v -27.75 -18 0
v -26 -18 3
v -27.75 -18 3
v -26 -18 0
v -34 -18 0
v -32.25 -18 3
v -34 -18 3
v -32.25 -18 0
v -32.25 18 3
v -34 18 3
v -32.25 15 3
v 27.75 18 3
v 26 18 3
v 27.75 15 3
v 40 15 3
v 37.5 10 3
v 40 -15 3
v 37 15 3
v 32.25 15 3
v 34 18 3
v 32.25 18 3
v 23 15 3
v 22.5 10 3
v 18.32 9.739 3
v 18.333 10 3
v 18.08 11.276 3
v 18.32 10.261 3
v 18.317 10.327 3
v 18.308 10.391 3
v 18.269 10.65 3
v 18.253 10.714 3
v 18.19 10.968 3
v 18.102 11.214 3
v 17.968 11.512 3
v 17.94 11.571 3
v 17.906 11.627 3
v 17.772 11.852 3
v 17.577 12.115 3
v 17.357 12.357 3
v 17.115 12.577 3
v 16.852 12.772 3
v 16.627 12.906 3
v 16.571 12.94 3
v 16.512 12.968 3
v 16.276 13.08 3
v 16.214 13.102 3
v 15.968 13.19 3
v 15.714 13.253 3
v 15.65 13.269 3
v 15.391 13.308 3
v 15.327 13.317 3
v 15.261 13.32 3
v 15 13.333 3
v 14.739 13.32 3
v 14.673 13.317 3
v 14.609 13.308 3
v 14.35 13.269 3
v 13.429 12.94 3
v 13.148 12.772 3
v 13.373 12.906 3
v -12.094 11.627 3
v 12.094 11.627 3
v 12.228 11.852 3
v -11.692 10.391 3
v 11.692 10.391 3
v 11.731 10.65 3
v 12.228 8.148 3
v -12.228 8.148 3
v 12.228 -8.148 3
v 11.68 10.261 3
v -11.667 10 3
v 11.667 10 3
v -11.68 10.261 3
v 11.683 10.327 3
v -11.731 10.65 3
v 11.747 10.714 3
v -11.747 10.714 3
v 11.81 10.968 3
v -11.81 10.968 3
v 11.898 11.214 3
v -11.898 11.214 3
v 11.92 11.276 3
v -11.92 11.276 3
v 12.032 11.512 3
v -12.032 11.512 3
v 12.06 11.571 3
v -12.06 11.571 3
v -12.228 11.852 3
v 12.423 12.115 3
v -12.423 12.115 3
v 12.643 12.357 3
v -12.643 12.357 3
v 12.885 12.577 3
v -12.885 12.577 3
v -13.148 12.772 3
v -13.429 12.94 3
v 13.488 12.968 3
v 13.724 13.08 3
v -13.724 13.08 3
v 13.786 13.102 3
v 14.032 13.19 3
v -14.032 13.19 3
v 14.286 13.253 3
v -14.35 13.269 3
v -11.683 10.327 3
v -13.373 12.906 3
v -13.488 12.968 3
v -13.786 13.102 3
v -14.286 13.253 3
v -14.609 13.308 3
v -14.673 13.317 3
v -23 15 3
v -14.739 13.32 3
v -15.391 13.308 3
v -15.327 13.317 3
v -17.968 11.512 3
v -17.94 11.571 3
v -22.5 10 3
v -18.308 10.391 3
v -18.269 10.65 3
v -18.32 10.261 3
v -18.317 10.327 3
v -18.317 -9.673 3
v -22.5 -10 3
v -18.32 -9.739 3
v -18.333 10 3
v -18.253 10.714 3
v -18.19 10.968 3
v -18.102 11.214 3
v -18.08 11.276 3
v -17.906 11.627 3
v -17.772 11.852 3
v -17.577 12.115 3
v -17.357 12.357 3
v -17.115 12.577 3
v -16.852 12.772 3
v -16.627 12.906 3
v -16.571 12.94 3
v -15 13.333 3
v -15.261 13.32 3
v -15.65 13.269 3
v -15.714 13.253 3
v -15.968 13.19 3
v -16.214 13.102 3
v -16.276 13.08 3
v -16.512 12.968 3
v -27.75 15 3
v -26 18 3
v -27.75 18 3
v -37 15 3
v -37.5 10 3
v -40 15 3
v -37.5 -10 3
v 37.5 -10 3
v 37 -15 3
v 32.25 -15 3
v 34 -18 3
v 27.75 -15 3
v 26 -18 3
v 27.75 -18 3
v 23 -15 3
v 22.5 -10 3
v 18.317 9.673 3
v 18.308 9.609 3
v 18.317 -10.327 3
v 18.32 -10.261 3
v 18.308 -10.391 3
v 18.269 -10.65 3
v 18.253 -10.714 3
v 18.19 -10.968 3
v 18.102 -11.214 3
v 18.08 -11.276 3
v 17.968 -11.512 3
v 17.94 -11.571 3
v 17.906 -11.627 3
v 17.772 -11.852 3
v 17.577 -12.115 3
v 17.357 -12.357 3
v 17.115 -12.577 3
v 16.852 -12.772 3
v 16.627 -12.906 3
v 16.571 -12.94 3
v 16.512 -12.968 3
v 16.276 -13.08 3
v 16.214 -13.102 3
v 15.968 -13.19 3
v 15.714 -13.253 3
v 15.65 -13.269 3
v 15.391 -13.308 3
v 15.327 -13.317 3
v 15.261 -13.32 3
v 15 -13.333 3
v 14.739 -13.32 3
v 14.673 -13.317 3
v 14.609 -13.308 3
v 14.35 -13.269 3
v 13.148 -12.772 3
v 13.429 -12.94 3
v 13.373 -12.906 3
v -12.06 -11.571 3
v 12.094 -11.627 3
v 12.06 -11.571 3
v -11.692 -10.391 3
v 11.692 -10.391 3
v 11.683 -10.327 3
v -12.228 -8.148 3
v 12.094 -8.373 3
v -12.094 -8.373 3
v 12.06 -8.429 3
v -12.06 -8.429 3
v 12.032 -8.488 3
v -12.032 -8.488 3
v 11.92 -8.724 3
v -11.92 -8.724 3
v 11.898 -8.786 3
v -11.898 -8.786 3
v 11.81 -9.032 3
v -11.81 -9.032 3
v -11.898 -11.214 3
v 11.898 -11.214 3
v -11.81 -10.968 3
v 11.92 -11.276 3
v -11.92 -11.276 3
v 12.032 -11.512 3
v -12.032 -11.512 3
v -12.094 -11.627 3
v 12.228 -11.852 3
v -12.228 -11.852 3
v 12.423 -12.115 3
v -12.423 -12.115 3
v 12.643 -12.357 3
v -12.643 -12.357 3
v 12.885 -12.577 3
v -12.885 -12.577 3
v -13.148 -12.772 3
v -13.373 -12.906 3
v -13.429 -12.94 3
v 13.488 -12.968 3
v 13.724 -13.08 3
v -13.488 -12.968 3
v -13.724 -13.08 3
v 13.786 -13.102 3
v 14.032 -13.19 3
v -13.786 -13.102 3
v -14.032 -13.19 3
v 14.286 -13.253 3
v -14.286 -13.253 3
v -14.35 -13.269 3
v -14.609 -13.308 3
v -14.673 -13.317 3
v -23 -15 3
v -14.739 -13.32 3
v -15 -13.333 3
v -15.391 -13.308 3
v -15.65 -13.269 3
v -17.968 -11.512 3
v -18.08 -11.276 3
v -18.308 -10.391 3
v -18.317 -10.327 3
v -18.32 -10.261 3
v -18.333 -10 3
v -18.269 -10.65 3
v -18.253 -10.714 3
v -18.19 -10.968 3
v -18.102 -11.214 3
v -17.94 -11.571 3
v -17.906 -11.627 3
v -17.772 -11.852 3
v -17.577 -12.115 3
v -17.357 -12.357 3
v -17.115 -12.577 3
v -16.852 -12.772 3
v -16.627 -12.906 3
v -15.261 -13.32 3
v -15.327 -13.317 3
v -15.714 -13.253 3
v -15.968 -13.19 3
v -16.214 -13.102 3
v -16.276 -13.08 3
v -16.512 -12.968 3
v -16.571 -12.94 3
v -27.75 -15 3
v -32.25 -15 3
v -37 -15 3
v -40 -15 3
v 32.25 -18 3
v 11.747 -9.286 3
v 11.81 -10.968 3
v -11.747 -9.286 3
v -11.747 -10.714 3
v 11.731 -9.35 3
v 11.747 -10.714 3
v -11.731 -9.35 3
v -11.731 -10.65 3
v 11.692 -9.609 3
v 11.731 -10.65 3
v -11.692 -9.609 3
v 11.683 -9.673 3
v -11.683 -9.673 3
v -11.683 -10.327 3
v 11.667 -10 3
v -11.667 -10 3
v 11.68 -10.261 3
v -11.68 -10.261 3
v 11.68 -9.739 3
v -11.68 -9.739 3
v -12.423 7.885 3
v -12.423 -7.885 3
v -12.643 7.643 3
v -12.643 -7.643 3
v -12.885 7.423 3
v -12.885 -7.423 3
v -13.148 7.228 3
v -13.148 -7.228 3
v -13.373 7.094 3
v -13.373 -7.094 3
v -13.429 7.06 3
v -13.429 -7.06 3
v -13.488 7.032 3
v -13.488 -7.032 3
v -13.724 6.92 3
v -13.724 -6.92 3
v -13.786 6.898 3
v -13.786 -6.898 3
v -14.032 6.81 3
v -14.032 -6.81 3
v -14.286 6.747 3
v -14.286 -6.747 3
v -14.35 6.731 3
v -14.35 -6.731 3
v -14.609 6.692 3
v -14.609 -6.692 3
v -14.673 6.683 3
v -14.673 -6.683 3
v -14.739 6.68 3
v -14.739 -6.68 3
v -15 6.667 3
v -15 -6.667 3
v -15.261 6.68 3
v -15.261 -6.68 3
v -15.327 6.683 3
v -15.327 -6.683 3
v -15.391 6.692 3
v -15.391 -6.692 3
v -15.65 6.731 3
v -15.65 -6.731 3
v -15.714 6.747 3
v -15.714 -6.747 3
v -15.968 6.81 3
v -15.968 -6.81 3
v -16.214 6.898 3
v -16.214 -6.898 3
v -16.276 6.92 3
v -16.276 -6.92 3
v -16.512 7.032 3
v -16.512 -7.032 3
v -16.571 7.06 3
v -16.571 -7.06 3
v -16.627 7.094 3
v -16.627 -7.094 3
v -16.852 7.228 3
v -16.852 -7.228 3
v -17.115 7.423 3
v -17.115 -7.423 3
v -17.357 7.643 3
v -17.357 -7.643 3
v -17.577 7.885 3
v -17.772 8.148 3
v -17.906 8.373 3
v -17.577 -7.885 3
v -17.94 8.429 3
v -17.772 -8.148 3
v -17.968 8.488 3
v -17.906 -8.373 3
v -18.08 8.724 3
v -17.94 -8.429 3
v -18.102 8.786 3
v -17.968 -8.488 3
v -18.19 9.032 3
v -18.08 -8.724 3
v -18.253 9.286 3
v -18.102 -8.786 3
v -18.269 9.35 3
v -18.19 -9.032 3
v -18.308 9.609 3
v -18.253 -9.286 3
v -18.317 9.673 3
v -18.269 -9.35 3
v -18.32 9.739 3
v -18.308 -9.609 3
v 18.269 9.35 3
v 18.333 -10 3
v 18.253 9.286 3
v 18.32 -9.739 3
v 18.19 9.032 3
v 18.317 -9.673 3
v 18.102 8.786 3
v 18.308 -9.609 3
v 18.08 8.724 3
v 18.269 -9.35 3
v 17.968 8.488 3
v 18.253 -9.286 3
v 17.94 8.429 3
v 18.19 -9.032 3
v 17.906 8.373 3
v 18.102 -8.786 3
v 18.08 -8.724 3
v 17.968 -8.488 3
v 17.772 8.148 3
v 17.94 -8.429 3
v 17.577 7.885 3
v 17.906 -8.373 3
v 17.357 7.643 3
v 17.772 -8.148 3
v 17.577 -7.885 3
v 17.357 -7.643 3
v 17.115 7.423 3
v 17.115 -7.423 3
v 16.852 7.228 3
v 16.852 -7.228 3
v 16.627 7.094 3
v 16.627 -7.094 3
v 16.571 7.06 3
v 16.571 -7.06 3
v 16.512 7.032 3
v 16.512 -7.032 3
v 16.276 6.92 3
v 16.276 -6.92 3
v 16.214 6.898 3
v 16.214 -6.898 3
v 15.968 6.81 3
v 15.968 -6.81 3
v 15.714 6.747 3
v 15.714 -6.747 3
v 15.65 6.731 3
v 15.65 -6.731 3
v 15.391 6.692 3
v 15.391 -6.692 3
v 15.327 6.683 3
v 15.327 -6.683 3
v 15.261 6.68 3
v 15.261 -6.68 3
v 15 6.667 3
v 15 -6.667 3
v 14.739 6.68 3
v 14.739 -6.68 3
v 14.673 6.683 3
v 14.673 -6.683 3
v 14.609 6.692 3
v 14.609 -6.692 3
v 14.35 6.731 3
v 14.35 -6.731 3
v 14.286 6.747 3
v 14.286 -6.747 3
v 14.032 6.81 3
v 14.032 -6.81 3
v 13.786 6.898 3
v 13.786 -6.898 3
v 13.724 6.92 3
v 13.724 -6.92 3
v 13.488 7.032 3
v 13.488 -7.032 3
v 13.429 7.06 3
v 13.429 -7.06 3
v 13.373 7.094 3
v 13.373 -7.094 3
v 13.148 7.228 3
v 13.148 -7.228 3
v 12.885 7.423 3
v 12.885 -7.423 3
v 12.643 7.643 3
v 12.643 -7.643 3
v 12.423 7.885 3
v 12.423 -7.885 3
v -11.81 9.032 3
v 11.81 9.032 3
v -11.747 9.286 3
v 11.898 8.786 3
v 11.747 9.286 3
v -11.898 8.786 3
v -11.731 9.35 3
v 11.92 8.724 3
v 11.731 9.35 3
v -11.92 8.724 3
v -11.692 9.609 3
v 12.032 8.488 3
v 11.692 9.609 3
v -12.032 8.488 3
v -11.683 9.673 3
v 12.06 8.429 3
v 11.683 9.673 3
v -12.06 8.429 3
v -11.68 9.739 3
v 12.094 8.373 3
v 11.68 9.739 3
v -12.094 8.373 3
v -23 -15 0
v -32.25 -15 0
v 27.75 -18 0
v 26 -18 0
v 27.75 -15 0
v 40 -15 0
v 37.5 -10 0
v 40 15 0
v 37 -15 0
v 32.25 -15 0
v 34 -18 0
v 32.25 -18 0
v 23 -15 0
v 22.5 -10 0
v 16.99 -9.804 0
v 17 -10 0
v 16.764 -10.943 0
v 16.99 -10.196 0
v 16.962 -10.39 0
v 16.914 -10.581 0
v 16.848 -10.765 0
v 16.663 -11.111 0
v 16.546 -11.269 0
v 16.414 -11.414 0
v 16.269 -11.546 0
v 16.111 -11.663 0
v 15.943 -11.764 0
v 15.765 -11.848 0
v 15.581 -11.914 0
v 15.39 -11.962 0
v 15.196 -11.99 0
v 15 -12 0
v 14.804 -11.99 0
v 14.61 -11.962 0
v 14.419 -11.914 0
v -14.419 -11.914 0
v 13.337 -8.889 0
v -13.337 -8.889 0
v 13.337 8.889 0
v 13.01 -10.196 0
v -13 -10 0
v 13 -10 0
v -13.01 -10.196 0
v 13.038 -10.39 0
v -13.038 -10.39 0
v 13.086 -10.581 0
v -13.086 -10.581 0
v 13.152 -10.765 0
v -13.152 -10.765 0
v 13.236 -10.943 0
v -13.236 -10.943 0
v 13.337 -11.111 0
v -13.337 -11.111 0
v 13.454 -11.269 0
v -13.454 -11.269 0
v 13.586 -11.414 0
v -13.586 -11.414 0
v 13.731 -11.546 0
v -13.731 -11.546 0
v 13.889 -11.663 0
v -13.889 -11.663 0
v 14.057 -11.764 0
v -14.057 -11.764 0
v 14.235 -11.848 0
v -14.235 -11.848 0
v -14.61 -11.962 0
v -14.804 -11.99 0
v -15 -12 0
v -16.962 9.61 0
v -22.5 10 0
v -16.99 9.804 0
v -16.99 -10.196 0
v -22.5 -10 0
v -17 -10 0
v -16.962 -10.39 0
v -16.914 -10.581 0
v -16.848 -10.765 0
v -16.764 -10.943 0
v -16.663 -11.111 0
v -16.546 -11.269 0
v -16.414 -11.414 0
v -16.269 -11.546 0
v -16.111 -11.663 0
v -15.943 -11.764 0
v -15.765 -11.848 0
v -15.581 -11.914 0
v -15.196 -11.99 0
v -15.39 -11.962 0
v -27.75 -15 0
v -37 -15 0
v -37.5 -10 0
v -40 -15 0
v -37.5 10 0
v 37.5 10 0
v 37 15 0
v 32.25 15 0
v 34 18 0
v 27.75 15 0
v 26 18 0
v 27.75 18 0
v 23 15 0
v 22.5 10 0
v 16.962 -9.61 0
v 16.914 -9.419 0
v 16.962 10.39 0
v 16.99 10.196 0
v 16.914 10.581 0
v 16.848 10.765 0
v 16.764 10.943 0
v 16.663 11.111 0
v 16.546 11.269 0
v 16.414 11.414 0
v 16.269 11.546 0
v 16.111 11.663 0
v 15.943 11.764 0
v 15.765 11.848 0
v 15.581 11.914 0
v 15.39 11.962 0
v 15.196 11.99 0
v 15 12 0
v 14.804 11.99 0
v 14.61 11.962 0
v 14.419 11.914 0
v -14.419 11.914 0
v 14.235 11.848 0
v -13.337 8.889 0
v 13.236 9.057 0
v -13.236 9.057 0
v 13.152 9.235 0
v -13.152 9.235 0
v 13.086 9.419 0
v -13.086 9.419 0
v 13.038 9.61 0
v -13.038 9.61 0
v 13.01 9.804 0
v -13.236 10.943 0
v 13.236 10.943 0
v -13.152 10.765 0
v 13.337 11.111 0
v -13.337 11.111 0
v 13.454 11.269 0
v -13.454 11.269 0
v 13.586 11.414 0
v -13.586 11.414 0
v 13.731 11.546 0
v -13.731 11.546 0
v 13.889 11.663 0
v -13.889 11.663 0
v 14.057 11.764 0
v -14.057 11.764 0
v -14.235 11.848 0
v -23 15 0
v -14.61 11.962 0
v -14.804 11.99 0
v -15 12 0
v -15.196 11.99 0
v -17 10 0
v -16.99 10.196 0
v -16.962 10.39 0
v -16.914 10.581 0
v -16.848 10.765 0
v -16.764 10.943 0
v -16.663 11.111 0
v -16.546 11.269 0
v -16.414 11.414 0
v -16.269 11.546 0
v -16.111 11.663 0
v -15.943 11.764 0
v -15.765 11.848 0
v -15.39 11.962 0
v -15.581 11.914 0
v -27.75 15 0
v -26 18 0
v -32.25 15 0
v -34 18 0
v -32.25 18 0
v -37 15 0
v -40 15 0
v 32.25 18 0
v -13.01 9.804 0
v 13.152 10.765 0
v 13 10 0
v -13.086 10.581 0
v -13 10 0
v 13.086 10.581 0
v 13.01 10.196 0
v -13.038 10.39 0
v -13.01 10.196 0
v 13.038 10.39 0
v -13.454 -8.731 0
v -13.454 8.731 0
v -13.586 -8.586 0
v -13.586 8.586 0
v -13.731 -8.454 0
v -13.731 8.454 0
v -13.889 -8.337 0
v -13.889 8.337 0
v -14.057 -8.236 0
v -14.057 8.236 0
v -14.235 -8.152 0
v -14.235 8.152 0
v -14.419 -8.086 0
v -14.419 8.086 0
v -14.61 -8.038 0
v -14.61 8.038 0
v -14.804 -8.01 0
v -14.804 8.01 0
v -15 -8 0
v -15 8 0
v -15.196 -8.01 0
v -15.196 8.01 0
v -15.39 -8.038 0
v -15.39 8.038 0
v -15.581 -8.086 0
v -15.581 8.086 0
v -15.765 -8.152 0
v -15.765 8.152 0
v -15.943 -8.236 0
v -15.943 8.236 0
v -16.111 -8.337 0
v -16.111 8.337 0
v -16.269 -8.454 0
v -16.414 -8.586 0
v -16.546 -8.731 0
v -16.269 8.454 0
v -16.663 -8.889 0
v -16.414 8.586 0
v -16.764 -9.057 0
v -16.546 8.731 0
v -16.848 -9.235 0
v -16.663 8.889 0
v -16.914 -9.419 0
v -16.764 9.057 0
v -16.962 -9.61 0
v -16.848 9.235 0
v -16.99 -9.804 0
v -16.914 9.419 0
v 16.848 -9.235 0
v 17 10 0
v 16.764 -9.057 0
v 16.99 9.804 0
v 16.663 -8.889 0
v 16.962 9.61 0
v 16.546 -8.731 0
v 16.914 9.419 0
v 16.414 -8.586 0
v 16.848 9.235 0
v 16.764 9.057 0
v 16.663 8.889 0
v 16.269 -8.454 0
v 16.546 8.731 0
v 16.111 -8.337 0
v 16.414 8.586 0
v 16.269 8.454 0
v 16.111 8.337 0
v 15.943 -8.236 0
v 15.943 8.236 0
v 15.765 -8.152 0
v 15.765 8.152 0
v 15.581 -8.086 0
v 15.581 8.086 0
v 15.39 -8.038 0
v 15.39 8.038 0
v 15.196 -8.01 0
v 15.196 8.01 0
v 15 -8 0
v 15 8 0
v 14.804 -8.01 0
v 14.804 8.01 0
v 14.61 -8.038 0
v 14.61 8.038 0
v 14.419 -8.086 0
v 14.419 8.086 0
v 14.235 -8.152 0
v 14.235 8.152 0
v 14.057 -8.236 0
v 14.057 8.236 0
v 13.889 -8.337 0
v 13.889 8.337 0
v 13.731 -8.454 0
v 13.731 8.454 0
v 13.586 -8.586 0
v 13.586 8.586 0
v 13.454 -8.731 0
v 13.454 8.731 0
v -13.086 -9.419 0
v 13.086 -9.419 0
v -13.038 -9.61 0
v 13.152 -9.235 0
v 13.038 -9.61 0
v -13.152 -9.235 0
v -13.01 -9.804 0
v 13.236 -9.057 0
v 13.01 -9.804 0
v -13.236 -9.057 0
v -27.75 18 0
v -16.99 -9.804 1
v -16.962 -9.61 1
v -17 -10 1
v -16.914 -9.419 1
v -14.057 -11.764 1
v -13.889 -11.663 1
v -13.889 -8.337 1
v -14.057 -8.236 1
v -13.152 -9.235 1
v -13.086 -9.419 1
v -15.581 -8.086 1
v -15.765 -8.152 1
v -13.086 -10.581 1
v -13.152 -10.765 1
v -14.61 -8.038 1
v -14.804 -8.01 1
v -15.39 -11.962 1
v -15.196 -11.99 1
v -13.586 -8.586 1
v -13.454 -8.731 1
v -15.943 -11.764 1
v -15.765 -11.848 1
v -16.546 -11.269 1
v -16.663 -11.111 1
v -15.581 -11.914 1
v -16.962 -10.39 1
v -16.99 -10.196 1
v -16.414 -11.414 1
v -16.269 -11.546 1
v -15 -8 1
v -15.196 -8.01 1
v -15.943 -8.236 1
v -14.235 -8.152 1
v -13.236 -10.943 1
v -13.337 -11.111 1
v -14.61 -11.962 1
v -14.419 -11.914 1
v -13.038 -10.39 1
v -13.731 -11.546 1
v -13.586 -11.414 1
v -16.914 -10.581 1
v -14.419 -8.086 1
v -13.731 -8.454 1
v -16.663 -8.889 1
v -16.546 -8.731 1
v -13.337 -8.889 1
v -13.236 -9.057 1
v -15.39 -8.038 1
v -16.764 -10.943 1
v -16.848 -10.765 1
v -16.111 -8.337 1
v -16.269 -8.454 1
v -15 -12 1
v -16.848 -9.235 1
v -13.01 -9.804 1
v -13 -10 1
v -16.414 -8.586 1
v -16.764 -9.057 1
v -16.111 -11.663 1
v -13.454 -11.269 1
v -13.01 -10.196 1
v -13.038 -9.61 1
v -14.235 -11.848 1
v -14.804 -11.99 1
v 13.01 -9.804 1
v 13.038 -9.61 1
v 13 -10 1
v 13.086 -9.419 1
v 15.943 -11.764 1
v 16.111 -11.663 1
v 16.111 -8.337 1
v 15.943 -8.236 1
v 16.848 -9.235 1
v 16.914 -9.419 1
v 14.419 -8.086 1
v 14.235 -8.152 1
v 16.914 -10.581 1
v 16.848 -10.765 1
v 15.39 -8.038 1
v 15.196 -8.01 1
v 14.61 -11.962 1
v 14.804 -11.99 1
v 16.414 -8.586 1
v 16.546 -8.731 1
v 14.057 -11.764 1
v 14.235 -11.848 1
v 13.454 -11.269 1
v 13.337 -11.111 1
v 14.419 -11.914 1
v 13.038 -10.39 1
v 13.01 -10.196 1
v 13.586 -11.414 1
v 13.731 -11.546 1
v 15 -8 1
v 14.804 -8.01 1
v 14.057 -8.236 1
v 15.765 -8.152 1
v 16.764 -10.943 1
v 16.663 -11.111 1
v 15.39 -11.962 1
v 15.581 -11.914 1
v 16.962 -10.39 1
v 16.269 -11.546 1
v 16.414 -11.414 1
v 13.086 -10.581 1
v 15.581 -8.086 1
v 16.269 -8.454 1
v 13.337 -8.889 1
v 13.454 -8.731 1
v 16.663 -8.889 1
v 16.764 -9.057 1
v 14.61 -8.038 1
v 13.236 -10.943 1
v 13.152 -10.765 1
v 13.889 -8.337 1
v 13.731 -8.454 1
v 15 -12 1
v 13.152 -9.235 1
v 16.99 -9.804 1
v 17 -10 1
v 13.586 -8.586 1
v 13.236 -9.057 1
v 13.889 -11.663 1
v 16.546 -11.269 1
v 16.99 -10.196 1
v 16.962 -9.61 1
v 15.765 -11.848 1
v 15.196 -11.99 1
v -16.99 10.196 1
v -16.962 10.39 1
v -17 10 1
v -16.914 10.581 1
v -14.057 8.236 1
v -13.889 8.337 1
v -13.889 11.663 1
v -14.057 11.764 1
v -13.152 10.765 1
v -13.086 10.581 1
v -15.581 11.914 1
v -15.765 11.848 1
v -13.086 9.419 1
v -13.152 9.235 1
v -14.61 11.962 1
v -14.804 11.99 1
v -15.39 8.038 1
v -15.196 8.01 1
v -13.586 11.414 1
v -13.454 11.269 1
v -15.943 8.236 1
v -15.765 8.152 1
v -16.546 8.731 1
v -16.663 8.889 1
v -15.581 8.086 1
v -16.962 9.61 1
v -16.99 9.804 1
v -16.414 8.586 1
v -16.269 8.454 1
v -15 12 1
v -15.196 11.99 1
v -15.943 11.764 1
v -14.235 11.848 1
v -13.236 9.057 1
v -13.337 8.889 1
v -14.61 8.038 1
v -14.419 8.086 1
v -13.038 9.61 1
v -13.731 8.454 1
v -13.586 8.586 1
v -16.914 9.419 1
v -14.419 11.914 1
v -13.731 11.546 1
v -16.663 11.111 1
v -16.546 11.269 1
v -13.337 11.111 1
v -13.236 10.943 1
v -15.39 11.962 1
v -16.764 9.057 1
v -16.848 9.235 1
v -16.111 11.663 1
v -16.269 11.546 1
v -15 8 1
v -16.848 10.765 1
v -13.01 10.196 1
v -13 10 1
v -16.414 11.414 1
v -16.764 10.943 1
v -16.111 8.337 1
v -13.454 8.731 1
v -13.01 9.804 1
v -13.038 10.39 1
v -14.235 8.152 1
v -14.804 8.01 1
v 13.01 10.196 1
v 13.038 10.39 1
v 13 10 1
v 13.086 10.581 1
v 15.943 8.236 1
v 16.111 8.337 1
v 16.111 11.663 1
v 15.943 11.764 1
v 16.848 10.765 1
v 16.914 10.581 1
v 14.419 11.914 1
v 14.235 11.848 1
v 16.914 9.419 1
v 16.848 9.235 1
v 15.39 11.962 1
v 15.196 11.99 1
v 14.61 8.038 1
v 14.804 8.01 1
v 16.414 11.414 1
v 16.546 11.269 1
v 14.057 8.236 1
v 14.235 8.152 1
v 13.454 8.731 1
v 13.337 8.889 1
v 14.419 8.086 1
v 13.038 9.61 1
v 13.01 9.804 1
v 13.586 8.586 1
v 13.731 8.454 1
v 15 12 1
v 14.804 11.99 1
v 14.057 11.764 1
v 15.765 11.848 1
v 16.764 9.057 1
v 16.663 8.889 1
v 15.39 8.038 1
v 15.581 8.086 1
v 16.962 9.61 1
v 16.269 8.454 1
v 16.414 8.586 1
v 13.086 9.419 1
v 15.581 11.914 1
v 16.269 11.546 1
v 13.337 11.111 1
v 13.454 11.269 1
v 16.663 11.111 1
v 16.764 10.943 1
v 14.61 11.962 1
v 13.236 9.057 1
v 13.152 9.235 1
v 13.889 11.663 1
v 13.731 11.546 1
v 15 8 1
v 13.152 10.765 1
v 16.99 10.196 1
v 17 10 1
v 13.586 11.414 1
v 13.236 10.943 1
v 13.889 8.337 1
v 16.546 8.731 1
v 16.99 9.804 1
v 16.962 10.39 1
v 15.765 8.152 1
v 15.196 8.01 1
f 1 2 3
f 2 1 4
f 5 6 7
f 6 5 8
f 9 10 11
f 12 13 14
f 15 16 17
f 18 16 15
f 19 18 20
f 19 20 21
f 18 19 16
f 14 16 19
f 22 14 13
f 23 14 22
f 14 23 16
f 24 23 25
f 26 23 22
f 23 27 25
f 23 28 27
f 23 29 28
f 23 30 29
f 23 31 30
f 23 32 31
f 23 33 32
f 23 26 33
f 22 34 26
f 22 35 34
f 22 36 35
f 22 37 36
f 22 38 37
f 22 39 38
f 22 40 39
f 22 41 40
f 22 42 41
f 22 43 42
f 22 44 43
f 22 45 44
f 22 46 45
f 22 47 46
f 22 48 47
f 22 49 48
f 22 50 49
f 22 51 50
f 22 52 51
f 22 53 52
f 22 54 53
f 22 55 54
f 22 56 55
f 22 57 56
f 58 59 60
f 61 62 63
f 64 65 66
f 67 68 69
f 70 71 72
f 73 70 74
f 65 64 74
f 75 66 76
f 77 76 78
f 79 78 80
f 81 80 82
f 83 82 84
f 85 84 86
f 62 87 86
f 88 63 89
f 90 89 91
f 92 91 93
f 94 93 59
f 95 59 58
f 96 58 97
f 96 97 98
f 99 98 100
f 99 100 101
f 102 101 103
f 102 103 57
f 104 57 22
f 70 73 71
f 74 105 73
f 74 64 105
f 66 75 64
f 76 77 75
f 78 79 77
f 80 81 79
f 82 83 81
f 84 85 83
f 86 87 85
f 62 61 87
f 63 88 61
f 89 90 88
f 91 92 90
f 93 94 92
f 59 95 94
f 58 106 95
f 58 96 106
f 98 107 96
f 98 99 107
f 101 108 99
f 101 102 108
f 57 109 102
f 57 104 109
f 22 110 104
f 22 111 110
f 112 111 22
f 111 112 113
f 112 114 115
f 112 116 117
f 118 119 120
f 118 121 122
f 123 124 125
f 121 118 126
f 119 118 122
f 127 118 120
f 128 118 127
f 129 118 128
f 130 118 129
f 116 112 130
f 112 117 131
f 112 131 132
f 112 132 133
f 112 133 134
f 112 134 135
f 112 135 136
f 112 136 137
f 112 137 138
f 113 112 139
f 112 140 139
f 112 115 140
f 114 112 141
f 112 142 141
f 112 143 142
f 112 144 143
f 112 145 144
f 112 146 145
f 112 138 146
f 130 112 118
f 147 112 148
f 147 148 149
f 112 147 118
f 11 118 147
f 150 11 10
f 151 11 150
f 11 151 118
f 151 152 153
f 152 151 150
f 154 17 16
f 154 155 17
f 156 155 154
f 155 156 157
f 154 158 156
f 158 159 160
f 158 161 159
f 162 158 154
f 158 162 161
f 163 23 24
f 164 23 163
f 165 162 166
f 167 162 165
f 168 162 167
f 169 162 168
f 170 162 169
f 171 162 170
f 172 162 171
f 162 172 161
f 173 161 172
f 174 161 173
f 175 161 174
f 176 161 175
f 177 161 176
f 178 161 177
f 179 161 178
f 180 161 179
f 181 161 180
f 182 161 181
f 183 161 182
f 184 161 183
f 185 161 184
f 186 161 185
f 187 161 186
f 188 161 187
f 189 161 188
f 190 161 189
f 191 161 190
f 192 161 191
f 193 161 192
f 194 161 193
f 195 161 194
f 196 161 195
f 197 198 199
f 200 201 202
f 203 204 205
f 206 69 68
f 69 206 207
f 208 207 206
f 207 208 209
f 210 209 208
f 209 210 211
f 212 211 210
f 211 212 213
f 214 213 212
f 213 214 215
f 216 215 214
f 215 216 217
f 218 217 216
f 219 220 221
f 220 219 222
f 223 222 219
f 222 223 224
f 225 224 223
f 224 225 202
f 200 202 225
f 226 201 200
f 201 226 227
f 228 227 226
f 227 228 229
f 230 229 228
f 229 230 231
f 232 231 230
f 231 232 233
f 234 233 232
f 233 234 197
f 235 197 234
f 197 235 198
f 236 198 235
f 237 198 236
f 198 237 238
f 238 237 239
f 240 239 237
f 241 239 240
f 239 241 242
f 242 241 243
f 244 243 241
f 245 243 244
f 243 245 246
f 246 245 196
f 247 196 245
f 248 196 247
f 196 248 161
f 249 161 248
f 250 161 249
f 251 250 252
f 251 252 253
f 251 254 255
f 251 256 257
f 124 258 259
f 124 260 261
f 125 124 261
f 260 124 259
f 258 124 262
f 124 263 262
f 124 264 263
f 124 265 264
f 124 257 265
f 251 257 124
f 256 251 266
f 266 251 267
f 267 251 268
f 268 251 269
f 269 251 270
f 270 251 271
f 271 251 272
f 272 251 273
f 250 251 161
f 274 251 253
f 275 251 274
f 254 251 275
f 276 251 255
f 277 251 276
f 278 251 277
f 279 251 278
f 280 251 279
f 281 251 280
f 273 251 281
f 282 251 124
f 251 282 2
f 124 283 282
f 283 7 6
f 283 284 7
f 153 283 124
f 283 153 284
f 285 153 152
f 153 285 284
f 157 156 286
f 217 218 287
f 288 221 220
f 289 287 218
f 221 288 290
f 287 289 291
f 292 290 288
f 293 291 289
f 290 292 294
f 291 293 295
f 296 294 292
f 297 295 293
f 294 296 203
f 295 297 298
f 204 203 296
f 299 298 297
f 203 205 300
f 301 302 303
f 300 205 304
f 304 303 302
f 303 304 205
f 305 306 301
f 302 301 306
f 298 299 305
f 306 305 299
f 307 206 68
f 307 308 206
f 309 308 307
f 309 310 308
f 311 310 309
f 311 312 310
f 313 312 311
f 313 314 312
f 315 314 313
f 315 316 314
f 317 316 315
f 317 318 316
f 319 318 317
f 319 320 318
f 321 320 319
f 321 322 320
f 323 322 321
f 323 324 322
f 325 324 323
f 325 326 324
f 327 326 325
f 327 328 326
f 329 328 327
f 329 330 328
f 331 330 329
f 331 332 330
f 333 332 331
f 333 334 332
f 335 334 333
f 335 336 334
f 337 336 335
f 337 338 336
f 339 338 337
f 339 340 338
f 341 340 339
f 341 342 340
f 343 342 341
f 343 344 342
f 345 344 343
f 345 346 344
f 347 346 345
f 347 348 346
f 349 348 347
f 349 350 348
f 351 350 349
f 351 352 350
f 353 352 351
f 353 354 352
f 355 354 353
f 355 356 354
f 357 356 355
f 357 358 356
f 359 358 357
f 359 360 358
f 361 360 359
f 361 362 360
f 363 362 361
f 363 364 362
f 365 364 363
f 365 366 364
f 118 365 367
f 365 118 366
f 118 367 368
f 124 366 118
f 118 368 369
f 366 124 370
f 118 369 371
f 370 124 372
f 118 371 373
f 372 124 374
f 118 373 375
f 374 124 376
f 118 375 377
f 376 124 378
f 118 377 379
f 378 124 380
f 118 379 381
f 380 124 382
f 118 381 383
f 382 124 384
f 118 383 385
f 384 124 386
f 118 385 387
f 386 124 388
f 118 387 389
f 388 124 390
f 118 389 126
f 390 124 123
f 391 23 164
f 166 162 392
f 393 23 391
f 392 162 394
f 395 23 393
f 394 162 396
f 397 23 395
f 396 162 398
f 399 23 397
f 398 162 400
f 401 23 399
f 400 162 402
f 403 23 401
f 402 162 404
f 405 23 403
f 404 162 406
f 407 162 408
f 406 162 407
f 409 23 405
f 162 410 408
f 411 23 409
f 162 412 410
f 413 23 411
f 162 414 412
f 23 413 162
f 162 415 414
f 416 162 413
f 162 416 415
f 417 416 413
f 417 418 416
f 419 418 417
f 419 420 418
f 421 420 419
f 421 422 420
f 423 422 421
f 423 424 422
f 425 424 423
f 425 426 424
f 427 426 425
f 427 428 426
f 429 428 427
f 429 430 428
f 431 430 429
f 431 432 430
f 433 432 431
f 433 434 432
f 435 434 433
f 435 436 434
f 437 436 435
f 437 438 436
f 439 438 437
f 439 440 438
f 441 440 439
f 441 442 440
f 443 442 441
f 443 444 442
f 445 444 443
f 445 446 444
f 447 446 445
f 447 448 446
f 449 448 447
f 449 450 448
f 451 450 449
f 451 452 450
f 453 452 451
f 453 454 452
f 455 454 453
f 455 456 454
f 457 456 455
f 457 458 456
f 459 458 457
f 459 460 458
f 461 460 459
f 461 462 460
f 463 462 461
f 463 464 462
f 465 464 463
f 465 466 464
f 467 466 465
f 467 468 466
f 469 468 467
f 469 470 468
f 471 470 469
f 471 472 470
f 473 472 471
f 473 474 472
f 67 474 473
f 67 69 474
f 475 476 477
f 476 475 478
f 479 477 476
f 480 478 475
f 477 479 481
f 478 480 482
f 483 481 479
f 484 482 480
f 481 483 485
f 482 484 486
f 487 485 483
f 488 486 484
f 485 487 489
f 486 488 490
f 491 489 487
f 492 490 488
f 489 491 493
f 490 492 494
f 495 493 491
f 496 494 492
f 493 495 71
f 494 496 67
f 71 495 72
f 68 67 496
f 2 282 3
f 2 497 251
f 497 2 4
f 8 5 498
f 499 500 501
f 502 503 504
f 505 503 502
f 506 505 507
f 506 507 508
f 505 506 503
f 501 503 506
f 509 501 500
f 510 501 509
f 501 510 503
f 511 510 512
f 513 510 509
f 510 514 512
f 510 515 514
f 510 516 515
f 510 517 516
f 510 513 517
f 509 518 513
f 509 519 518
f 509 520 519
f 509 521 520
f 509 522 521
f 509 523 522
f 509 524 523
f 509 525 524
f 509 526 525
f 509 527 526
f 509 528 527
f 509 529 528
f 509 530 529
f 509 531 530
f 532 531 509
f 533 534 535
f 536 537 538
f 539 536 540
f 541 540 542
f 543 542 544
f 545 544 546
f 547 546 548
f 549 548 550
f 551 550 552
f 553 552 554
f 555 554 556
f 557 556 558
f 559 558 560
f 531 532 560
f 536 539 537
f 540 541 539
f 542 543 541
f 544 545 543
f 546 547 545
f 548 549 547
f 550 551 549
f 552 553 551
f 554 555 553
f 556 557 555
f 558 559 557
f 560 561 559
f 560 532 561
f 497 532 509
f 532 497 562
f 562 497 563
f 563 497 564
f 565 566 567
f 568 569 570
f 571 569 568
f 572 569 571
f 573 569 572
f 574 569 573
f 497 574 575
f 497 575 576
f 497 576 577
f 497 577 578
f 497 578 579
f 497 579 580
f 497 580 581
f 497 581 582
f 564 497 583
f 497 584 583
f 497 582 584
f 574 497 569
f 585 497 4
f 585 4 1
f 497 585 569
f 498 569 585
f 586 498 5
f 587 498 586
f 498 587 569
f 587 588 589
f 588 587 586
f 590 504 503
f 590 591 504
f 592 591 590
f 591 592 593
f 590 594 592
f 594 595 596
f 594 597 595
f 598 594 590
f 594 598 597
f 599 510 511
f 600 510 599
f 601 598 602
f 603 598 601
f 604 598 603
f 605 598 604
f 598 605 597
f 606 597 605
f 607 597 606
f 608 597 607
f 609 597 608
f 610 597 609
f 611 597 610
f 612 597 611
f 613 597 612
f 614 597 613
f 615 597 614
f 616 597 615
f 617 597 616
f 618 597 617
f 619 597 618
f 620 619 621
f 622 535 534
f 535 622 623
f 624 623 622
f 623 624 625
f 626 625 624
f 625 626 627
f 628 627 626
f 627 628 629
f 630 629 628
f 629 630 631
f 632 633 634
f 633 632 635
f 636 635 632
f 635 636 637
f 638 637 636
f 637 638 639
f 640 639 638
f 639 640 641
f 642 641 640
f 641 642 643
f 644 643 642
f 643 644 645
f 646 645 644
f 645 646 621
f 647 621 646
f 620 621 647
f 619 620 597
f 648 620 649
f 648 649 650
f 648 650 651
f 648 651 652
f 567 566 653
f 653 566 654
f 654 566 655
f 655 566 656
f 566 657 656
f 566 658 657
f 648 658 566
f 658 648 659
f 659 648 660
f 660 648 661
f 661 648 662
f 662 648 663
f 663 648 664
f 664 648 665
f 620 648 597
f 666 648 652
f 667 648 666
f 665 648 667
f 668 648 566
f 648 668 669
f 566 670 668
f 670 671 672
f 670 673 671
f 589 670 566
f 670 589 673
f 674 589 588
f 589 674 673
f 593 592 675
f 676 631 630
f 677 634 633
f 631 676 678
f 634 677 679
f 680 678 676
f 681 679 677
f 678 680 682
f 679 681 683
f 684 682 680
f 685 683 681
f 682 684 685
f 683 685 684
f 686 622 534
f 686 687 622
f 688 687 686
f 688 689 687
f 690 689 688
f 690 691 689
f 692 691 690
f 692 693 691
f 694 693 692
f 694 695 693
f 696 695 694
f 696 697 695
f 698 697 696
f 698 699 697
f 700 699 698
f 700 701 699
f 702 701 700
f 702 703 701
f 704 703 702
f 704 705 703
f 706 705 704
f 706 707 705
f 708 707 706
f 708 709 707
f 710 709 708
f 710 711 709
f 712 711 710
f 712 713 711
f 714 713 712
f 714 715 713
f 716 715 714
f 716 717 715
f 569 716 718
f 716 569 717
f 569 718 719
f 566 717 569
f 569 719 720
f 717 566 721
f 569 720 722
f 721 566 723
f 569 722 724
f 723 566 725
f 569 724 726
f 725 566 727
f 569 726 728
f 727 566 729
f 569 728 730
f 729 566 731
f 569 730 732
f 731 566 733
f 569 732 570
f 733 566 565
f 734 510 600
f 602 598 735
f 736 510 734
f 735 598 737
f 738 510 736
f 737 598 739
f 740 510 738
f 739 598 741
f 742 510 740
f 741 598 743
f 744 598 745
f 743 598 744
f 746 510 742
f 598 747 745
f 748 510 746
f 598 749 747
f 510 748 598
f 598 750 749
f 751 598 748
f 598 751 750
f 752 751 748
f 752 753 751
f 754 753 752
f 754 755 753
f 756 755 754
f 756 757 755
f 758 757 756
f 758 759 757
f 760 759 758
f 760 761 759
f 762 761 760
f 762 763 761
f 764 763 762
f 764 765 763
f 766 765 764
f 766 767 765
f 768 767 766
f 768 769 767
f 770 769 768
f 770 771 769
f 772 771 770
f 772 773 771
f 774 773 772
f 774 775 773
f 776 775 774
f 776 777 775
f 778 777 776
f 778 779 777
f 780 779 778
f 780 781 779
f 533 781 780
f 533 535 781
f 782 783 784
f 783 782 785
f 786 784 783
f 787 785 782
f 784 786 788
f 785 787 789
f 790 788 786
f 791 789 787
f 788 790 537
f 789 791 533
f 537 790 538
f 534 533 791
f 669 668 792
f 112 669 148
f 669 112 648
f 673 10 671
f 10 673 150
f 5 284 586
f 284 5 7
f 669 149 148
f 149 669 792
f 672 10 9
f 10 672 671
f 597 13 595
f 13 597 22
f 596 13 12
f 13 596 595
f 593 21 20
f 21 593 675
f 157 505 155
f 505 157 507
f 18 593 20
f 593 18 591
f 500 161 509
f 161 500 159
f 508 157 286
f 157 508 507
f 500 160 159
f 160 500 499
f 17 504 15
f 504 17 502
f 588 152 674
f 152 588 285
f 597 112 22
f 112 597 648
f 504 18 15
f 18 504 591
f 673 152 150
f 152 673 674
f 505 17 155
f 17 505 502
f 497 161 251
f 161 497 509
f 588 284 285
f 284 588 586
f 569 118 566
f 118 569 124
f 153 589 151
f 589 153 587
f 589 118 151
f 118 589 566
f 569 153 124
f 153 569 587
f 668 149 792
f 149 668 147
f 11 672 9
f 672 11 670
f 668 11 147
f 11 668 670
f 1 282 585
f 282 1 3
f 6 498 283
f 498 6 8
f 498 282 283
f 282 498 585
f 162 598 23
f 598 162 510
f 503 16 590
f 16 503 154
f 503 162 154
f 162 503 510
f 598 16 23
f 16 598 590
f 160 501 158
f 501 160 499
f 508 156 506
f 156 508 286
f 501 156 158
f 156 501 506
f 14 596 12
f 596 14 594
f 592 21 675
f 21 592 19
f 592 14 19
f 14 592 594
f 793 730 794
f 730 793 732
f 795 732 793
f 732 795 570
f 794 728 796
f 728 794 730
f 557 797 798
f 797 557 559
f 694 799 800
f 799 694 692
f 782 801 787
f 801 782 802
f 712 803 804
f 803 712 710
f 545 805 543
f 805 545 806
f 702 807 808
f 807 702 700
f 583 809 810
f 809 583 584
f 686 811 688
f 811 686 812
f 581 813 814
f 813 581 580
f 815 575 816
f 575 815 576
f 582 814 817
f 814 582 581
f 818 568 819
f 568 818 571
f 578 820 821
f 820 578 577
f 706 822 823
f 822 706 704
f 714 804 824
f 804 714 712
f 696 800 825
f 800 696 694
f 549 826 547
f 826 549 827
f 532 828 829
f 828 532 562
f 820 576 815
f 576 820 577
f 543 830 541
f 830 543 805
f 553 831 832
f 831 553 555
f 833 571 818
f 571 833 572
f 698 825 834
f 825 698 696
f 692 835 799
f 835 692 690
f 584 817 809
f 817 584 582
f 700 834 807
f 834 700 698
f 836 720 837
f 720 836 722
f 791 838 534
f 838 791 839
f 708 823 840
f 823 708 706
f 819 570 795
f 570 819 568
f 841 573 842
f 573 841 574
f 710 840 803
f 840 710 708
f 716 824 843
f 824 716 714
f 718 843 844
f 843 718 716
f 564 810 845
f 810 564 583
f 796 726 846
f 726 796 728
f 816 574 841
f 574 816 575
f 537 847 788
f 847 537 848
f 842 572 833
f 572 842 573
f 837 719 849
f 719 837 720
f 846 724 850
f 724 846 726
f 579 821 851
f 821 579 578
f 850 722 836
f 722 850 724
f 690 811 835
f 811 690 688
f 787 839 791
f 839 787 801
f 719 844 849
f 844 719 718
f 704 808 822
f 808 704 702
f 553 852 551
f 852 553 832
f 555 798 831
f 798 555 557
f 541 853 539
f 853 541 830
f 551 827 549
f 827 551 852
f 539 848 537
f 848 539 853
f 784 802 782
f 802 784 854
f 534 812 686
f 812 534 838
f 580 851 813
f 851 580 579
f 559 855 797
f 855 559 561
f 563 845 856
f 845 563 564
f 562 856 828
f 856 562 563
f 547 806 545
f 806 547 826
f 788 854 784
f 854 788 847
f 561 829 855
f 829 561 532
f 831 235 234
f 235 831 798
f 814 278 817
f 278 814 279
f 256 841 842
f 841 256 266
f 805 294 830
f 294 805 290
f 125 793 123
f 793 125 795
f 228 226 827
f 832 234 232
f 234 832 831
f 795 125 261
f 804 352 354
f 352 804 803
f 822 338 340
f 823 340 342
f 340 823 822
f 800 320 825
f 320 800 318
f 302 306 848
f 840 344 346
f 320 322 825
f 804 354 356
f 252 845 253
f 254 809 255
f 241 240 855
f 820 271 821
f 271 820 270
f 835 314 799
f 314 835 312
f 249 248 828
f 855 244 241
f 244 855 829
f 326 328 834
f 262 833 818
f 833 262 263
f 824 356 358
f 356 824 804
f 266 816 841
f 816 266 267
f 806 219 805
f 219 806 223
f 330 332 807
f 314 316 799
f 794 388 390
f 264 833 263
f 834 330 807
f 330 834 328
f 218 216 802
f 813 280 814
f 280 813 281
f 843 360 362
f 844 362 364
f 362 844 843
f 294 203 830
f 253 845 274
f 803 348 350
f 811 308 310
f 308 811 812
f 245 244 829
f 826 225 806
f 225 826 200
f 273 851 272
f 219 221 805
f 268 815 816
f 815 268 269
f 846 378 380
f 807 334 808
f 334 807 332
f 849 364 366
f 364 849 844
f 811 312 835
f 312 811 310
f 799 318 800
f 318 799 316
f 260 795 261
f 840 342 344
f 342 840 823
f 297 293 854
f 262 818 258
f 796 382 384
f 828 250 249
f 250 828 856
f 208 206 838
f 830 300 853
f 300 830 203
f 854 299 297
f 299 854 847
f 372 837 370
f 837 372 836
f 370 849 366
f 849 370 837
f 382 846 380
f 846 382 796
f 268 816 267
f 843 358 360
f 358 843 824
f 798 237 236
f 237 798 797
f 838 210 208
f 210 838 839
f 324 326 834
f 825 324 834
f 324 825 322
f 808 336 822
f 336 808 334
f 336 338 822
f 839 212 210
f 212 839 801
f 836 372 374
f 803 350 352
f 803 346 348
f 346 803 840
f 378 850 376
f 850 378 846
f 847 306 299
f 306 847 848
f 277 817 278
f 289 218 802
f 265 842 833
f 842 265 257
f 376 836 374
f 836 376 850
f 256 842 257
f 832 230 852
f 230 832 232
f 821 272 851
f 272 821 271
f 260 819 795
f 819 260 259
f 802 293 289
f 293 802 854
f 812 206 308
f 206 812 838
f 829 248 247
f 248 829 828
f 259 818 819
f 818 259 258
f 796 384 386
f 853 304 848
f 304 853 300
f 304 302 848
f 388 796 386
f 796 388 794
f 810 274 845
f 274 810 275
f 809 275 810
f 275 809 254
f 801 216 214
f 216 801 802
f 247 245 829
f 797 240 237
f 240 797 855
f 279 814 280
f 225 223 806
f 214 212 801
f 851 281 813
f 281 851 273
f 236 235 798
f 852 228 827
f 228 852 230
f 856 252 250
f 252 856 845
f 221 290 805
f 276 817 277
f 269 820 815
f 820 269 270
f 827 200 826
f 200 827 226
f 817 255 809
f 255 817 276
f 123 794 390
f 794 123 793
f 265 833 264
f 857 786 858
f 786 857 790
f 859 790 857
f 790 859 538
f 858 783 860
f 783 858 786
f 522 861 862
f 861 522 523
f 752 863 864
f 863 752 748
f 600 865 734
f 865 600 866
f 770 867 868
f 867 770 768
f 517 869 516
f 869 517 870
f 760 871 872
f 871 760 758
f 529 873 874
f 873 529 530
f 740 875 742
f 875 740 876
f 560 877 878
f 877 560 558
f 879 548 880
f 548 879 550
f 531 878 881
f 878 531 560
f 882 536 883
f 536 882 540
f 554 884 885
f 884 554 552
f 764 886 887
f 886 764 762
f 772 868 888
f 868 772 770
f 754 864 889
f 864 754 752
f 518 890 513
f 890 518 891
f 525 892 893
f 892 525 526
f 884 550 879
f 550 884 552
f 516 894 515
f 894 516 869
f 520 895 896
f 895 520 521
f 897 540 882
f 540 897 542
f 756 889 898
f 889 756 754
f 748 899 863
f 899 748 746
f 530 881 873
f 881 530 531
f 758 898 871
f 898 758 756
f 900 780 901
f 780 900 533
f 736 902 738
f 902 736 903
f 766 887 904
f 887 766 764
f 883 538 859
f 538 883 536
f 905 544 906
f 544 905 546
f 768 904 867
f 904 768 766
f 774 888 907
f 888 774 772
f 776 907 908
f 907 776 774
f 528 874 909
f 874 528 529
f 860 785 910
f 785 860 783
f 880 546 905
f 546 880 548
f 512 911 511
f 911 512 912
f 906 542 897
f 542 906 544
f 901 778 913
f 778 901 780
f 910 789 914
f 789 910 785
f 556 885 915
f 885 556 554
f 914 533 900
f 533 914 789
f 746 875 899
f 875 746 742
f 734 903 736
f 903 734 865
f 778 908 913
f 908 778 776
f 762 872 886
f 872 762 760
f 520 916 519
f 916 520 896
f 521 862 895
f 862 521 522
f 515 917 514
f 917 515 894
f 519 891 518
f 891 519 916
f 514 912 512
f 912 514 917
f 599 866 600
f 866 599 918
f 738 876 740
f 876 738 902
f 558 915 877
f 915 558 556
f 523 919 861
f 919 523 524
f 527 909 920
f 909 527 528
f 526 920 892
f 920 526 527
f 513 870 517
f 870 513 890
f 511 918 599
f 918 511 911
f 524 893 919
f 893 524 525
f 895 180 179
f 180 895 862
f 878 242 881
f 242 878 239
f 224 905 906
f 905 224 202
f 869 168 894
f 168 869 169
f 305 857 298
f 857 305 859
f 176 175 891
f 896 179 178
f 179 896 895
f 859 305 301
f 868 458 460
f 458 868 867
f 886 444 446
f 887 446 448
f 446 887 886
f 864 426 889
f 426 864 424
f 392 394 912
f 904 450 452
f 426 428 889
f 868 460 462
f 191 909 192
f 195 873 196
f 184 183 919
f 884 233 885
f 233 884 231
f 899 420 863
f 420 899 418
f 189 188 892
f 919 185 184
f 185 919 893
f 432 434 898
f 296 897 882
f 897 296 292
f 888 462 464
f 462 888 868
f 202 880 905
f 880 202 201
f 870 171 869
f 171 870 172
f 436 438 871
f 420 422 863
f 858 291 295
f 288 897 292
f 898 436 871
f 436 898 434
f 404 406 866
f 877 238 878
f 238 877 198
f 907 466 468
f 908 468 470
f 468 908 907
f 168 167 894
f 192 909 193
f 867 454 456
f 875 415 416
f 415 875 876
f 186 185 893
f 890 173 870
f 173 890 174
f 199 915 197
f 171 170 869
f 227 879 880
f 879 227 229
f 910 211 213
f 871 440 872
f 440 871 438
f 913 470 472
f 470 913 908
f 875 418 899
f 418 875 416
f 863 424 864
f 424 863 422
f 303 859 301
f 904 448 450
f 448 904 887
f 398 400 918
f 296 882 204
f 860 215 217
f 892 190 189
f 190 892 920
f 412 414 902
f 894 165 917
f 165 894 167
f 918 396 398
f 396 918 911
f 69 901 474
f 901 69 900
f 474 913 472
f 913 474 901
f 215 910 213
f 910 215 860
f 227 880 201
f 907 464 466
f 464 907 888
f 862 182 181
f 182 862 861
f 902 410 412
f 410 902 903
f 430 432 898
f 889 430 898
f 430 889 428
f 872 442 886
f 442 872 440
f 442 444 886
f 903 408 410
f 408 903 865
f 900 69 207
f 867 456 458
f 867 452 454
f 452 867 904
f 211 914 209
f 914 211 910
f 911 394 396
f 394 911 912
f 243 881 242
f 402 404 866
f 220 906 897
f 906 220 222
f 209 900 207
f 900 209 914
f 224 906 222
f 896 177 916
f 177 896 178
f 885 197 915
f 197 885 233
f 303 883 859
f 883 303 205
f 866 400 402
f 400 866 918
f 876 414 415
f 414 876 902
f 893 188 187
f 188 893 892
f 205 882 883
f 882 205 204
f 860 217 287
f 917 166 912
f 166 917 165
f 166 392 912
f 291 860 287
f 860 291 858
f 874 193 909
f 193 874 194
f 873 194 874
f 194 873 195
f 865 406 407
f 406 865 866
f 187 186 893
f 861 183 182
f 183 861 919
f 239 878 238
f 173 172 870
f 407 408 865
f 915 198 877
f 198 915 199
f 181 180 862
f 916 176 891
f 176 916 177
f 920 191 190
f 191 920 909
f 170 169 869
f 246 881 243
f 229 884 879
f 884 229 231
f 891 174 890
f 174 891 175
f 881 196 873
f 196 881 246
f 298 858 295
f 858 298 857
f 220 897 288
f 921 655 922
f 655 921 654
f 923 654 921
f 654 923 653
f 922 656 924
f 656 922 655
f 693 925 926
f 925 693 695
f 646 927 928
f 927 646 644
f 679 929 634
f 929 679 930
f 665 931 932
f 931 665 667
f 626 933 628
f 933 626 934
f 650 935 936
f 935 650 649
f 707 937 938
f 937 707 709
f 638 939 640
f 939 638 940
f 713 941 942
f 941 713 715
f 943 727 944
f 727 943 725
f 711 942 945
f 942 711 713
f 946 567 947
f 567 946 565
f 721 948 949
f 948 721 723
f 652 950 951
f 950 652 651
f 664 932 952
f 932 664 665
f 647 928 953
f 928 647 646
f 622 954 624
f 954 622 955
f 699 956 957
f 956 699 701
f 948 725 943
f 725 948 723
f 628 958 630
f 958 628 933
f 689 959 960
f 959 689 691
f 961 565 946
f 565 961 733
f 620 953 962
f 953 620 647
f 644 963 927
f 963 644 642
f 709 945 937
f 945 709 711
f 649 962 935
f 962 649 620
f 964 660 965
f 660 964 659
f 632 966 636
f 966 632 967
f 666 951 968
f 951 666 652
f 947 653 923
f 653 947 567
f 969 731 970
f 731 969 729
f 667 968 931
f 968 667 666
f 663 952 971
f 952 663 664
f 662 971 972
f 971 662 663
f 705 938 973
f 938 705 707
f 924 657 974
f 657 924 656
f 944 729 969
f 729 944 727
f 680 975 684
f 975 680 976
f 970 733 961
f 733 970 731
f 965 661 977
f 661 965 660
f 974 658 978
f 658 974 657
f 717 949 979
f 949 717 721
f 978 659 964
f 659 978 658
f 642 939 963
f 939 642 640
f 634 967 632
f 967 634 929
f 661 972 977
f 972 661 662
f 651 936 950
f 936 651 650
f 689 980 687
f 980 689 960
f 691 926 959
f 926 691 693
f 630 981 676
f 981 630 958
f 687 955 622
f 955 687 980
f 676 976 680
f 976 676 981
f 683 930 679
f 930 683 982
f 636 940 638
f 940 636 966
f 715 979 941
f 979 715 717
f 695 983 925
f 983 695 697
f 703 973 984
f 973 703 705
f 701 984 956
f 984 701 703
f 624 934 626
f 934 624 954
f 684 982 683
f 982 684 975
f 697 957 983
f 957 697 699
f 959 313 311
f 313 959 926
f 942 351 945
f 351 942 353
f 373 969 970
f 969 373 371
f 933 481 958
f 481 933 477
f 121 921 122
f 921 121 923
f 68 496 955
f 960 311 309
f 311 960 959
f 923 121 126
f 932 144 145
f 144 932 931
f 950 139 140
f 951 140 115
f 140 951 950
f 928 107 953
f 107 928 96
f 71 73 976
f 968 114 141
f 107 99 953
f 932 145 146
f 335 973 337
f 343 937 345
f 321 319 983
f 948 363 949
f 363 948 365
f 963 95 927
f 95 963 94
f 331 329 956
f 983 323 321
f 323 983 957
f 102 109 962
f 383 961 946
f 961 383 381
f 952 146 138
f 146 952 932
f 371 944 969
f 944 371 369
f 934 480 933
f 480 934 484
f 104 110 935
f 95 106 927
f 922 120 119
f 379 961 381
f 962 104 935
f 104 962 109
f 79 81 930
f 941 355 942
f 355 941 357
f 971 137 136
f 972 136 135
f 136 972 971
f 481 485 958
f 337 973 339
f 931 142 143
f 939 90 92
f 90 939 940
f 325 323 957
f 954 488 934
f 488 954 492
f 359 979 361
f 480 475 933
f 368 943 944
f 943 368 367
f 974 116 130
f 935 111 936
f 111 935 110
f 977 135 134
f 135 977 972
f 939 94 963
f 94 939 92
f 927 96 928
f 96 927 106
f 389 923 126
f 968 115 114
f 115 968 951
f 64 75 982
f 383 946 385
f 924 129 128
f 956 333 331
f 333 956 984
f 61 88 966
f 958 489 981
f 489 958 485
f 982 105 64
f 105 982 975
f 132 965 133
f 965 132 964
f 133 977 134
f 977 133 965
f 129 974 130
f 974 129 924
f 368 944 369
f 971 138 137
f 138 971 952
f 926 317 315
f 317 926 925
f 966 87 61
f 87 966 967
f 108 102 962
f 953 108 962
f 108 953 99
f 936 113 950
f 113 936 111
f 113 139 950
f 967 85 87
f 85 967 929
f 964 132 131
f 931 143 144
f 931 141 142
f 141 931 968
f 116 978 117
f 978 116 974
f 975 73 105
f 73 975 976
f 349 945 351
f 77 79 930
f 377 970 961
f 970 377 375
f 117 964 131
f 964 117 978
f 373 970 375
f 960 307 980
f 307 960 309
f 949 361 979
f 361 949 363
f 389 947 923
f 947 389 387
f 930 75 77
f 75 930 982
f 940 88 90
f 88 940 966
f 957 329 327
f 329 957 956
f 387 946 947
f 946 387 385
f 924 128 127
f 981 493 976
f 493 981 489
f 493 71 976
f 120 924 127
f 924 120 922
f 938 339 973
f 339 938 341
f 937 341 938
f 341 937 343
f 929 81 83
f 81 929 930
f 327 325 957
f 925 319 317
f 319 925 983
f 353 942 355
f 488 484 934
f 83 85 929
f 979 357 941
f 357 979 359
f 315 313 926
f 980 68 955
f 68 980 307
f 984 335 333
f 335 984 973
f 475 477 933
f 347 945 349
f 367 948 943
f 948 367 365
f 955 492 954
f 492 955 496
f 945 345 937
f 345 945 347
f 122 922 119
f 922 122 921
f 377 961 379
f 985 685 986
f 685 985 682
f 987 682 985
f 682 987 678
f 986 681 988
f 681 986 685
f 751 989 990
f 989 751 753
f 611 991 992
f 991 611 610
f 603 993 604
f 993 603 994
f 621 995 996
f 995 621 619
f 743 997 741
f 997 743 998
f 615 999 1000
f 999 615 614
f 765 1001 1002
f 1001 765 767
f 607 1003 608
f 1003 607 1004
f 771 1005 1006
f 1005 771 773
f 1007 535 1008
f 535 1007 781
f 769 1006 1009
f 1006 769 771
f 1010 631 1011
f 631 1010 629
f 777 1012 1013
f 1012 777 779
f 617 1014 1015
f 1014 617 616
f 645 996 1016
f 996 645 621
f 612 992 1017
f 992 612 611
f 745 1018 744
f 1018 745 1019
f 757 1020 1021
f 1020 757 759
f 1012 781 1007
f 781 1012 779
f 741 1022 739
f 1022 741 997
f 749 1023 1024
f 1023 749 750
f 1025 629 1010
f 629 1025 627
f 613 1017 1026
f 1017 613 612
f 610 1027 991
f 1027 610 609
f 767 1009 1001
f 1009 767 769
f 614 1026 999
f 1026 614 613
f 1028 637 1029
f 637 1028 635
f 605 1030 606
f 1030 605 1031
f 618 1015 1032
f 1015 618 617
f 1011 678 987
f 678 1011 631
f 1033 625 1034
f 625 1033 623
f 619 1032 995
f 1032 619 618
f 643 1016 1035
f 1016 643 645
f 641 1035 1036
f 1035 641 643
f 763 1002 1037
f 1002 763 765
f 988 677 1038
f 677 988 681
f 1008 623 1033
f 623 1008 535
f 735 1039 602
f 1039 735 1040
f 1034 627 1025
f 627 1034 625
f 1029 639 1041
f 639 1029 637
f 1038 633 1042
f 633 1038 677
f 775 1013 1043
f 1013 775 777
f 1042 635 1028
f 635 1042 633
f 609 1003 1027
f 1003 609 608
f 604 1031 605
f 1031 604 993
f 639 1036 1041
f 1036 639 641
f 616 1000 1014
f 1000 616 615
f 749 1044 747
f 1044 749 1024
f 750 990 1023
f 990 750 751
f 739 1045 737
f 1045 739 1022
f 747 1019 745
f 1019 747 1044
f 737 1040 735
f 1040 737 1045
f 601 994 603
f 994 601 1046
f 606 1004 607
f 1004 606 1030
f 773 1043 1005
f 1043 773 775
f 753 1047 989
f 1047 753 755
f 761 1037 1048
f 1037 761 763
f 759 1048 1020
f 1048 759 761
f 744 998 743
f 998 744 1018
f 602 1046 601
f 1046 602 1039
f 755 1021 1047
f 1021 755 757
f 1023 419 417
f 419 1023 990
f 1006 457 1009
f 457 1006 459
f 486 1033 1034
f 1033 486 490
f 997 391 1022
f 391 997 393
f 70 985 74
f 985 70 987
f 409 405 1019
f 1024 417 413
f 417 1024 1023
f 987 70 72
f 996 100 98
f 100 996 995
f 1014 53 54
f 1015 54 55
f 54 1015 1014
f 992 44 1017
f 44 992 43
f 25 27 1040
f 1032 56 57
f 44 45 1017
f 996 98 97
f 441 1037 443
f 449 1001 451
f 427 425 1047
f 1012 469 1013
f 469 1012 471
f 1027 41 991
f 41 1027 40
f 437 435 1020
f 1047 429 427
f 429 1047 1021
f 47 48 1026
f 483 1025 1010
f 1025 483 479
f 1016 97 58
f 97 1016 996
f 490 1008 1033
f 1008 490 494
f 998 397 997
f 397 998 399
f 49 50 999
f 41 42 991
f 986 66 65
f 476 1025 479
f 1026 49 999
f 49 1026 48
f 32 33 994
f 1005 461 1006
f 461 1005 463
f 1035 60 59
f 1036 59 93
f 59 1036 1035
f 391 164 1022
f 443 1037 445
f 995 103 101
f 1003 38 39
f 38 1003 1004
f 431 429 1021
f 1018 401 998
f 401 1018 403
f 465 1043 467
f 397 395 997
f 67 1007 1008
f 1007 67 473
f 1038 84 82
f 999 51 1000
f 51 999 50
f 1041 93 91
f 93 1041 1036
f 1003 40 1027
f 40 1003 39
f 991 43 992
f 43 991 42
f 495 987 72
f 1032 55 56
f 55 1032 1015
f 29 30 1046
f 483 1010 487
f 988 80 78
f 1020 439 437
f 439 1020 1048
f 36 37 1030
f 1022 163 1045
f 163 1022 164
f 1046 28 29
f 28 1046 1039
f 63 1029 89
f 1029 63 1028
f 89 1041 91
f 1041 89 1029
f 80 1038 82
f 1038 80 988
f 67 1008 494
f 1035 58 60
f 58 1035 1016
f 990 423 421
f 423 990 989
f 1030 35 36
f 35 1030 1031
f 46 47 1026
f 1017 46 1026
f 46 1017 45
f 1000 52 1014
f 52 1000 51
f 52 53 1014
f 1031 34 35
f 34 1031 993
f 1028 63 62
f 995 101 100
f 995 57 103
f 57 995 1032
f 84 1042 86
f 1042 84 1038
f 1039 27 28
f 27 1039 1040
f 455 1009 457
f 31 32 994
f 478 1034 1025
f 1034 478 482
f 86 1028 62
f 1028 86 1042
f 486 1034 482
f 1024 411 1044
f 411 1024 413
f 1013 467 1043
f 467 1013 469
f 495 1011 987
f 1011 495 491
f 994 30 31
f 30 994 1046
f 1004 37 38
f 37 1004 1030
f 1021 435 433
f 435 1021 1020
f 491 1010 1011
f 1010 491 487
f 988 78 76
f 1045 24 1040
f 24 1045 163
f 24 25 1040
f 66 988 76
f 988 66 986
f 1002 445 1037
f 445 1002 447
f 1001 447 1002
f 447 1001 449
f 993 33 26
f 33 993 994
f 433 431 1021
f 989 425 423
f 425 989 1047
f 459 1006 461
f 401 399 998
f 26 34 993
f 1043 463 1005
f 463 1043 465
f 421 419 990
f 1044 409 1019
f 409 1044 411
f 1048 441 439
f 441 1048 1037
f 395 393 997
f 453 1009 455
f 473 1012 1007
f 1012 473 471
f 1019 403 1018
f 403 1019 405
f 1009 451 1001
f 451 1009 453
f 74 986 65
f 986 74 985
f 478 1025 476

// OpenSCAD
$fn=64;

sh_through = 4;
sh_countersink = 3;
sh_thread = 4.5; // 2.7 for tapping, 4.5 for brass insert
sh_thread_depth = 6;

shell_thickness = 2;
shell_thread_hole_thickness = 10;
shell_thread_hole_diameter = 8;

mounting_holes_height = 30;
mounting_holes_width = 40;

optical_hole = 30;
mirror_hole = 40;
flange_thickness = 3;

flange_gap = 20;
ifd = flange_gap + 40;

slop_adjust = 0.25;
shell_height = 50/2 - slop_adjust;

slider_tolerance = 0.75; // Needs to take into account thickness of aluminium tape.

module countersink_cyl() {
    translate([0,0,-20]){
        cylinder(mounting_holes_height + 10, sh_through/2, sh_through/2);
        hull () {
            translate([0,0,-5])cylinder(1, (sh_countersink-1) + (sh_through/2), (sh_countersink-1) + (sh_through/2));
            translate([0,0,mounting_holes_height/2 + 1])cylinder(sh_countersink, (sh_countersink-1) + (sh_through/2), sh_through/2);
        }
    }
}

module thread_cyl() {
    translate([0,0,-25]){
        cylinder(mounting_holes_height + 10, sh_thread/2, sh_thread/2);
        hull () {
            translate([0,0,-5])cylinder(1, (sh_countersink-1) + (sh_through/2), (sh_countersink-1) + (sh_through/2));
            translate([0,0,mounting_holes_height/2 - sh_countersink])cylinder(sh_countersink+2, (sh_countersink-1) + (sh_through/2), sh_thread/2);
        }
    }
}

slider_rail_gap = 30;

module mirror_holder() {
    hull() {
        translate([-(8/2), -(36/2), 0])cube([8, 36,flange_thickness]);
        translate([-(14/2), -(30/2), 0])cube([14, 30,flange_thickness]);
    }
}

lhw = 20;
lhh = lhw / (4/3); // Sensor's native resolution is in 4/3 aspect ratio.

module mirror_holes() {
    translate([-(lhh/2), -(lhw/2), -1])cube([lhh,lhw,30]);

    translate([-(3/2)-slider_tolerance, (slider_rail_gap/2), -5])cube([3 + (slider_tolerance*2),10,30]);
    translate([-(3/2)-slider_tolerance, -10 - (slider_rail_gap/2), -5])cube([3 + (slider_tolerance*2),10,30]);
}


carrier_width = 80;




difference(){
    union() {
        translate([-ifd/2, 0, 0])mirror_holder();
        translate([ifd/2, 0, 0])rotate([0,0,180])mirror_holder();

        translate([-carrier_width/2, -30/2, 0])cube([carrier_width,30,flange_thickness]);
    }
    translate([-ifd/2, 0, 0])mirror_holes();
    translate([ifd/2, 0, 0])rotate([0,0,180])mirror_holes();
    translate([-15, -10, 0])rotate([0,180,0])countersink_cyl();
    translate([15, -10, 0])rotate([0,180,0])countersink_cyl();
    translate([-15, 10, 0])rotate([0,180,0])countersink_cyl();
    translate([15, 10, 0])rotate([0,180,0])countersink_cyl();
}
